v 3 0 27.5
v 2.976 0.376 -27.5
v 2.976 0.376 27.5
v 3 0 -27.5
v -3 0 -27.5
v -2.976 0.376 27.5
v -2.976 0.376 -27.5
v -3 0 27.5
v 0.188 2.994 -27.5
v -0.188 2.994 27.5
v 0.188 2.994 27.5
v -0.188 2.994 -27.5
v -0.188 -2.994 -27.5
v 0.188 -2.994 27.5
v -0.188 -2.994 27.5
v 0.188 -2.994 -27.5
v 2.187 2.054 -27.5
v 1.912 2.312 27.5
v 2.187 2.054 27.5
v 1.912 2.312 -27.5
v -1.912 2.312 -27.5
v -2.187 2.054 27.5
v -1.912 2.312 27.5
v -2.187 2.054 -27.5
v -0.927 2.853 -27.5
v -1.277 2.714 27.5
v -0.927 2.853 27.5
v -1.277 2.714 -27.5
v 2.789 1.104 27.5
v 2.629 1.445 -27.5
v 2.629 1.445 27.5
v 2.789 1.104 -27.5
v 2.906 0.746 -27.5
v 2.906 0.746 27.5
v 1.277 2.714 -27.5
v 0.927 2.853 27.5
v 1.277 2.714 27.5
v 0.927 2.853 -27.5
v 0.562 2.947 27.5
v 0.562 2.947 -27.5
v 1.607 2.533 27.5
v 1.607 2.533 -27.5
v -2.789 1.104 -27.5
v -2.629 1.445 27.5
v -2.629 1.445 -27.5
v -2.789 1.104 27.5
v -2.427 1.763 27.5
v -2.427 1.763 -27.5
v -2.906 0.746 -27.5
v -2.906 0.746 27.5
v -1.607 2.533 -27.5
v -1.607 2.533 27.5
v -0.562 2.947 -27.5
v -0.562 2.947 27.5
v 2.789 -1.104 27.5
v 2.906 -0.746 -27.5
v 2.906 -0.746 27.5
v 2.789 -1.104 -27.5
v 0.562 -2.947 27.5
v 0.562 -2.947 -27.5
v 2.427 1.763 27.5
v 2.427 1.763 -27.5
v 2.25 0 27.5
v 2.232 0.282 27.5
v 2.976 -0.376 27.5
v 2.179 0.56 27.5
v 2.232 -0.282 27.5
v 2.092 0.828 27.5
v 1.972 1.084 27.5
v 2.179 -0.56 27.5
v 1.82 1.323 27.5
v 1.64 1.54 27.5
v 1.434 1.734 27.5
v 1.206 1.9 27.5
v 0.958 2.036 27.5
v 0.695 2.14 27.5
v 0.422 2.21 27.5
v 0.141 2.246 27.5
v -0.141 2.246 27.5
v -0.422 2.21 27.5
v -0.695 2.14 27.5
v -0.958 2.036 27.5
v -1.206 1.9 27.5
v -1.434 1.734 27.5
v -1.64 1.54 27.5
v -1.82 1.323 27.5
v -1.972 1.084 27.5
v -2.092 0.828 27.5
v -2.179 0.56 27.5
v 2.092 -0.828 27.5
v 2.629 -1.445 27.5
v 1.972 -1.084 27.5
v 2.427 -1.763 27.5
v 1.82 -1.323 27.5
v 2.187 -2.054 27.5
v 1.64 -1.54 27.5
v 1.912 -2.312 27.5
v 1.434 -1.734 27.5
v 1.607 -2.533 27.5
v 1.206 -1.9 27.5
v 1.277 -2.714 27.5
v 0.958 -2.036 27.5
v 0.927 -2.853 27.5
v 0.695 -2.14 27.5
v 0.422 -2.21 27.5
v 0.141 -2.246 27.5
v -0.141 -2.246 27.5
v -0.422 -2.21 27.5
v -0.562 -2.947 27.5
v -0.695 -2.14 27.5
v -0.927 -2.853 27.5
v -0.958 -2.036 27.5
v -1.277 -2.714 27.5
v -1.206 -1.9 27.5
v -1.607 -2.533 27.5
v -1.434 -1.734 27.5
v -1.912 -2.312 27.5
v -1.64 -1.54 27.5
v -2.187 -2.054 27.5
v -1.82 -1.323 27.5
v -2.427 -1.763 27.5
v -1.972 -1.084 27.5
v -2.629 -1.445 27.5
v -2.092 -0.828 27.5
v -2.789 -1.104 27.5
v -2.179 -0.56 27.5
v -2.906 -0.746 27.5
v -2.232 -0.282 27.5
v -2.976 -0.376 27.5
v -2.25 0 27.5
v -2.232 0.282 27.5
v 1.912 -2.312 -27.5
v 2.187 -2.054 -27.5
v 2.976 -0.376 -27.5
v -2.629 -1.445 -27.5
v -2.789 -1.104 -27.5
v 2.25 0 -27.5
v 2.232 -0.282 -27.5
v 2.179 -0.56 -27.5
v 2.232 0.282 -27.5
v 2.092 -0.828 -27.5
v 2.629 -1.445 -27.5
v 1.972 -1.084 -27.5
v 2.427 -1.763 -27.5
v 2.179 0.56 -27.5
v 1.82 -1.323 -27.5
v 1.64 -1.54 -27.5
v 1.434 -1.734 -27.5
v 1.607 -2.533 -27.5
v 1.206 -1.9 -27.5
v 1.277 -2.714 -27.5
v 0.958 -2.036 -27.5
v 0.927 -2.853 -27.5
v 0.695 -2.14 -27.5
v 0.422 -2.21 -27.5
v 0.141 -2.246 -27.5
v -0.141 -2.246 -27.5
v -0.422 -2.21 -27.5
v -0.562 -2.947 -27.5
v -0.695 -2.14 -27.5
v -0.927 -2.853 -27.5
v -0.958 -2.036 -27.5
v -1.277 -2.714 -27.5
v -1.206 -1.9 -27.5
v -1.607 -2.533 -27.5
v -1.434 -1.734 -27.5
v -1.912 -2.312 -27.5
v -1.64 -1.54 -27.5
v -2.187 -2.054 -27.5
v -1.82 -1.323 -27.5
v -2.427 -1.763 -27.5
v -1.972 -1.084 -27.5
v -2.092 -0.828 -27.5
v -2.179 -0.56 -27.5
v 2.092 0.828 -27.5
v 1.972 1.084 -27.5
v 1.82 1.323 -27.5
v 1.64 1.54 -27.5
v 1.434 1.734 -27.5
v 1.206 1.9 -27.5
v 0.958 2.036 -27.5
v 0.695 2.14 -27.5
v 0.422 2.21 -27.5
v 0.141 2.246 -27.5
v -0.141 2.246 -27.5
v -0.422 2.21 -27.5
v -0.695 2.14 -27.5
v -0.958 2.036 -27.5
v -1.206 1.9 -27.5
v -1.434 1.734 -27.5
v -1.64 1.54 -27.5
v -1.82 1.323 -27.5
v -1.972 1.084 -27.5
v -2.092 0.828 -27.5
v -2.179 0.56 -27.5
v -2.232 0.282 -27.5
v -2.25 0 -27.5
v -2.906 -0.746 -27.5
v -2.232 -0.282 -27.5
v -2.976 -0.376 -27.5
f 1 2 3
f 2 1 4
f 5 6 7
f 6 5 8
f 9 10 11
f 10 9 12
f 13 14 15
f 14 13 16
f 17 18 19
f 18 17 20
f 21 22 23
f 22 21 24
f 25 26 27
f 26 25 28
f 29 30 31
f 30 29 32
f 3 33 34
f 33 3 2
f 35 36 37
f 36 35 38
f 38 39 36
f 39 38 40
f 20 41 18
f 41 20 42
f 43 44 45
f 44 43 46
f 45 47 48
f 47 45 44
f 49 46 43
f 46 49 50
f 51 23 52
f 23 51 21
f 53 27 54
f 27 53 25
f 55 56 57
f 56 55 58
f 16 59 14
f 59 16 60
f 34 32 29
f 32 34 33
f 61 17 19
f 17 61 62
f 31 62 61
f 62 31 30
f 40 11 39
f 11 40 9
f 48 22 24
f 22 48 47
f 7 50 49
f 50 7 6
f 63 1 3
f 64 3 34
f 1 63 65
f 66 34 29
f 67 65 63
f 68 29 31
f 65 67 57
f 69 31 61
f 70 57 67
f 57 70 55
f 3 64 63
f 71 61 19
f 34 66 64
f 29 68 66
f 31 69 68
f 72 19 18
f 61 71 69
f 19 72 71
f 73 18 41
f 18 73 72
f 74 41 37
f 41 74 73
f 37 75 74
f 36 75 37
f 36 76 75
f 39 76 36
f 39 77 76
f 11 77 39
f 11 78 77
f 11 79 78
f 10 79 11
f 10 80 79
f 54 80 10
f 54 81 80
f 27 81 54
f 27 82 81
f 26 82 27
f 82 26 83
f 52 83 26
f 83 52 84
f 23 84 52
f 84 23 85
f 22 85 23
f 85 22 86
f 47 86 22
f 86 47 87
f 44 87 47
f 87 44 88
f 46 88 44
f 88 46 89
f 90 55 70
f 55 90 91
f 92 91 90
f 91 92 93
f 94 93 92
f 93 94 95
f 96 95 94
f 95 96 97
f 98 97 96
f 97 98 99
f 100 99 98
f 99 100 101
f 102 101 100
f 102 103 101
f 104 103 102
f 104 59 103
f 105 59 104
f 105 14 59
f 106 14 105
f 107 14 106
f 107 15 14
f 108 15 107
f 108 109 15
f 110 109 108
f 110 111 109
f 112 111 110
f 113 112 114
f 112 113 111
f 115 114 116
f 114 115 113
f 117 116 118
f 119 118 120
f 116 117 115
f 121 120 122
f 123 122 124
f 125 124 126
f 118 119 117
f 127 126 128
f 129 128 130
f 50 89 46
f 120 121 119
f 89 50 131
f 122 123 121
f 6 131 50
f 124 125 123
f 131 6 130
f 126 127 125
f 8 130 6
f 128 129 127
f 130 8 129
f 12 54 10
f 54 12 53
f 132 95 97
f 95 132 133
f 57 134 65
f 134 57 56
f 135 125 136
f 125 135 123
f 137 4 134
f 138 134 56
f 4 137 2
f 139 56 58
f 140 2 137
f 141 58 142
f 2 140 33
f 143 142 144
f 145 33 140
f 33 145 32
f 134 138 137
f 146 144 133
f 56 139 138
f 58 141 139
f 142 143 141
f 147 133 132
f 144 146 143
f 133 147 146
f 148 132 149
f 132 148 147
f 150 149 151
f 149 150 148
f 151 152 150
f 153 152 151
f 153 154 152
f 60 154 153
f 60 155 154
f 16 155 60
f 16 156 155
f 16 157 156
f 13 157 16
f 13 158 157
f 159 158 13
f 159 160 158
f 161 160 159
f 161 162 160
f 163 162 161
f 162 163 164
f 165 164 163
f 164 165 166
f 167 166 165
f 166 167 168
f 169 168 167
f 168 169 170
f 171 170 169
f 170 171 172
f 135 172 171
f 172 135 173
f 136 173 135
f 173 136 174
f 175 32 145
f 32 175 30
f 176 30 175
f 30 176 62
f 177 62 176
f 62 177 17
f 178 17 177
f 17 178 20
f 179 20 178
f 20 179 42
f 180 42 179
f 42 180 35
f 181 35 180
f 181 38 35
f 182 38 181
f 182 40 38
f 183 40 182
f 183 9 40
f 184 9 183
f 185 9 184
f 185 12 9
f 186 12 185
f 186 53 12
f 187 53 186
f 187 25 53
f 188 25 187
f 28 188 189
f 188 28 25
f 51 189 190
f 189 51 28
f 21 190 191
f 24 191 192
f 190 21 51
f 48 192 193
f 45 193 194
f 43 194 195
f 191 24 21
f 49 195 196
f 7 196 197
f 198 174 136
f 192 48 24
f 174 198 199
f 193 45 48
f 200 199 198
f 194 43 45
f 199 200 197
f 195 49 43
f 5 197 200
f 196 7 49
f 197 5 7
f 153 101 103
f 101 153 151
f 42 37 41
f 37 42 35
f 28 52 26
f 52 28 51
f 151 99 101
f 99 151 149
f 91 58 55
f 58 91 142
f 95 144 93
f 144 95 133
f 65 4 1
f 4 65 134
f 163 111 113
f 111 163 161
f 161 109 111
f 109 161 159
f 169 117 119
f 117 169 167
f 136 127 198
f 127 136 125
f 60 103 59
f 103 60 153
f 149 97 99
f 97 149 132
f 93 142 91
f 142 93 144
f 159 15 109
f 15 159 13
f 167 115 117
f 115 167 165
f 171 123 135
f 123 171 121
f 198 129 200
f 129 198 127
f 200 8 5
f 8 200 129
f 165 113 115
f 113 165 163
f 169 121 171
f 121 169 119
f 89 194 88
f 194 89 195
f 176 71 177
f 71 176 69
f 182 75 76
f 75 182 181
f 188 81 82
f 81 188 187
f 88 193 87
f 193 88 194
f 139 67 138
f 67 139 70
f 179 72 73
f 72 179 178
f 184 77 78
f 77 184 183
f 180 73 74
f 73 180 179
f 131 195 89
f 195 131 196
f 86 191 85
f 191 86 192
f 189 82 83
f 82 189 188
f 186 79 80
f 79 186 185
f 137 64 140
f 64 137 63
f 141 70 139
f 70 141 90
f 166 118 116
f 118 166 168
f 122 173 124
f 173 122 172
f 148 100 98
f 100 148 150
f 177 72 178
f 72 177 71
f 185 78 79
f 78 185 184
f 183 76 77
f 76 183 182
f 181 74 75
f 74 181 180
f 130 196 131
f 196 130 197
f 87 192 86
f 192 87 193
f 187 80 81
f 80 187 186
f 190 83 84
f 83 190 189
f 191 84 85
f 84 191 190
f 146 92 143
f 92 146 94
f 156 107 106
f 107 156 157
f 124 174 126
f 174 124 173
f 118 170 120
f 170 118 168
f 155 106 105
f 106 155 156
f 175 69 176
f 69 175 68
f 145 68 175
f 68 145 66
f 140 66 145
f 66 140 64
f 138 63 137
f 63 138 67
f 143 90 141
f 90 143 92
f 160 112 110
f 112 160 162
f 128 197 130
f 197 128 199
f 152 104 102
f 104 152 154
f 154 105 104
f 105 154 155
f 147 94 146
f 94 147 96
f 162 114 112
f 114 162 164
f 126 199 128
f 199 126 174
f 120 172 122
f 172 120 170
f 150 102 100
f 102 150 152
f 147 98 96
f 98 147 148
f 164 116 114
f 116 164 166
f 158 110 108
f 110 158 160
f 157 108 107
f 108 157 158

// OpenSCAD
$fn = 50;


difference() {
	union() {
		translate(v = [0, 0, -27.5000000000]) {
			cylinder(h = 55, r = 3.0000000000);
		}
	}
	union() {
		translate(v = [0, 0, -100.0000000000]) {
			cylinder(h = 200, r = 2.2500000000);
		}
	}
}
